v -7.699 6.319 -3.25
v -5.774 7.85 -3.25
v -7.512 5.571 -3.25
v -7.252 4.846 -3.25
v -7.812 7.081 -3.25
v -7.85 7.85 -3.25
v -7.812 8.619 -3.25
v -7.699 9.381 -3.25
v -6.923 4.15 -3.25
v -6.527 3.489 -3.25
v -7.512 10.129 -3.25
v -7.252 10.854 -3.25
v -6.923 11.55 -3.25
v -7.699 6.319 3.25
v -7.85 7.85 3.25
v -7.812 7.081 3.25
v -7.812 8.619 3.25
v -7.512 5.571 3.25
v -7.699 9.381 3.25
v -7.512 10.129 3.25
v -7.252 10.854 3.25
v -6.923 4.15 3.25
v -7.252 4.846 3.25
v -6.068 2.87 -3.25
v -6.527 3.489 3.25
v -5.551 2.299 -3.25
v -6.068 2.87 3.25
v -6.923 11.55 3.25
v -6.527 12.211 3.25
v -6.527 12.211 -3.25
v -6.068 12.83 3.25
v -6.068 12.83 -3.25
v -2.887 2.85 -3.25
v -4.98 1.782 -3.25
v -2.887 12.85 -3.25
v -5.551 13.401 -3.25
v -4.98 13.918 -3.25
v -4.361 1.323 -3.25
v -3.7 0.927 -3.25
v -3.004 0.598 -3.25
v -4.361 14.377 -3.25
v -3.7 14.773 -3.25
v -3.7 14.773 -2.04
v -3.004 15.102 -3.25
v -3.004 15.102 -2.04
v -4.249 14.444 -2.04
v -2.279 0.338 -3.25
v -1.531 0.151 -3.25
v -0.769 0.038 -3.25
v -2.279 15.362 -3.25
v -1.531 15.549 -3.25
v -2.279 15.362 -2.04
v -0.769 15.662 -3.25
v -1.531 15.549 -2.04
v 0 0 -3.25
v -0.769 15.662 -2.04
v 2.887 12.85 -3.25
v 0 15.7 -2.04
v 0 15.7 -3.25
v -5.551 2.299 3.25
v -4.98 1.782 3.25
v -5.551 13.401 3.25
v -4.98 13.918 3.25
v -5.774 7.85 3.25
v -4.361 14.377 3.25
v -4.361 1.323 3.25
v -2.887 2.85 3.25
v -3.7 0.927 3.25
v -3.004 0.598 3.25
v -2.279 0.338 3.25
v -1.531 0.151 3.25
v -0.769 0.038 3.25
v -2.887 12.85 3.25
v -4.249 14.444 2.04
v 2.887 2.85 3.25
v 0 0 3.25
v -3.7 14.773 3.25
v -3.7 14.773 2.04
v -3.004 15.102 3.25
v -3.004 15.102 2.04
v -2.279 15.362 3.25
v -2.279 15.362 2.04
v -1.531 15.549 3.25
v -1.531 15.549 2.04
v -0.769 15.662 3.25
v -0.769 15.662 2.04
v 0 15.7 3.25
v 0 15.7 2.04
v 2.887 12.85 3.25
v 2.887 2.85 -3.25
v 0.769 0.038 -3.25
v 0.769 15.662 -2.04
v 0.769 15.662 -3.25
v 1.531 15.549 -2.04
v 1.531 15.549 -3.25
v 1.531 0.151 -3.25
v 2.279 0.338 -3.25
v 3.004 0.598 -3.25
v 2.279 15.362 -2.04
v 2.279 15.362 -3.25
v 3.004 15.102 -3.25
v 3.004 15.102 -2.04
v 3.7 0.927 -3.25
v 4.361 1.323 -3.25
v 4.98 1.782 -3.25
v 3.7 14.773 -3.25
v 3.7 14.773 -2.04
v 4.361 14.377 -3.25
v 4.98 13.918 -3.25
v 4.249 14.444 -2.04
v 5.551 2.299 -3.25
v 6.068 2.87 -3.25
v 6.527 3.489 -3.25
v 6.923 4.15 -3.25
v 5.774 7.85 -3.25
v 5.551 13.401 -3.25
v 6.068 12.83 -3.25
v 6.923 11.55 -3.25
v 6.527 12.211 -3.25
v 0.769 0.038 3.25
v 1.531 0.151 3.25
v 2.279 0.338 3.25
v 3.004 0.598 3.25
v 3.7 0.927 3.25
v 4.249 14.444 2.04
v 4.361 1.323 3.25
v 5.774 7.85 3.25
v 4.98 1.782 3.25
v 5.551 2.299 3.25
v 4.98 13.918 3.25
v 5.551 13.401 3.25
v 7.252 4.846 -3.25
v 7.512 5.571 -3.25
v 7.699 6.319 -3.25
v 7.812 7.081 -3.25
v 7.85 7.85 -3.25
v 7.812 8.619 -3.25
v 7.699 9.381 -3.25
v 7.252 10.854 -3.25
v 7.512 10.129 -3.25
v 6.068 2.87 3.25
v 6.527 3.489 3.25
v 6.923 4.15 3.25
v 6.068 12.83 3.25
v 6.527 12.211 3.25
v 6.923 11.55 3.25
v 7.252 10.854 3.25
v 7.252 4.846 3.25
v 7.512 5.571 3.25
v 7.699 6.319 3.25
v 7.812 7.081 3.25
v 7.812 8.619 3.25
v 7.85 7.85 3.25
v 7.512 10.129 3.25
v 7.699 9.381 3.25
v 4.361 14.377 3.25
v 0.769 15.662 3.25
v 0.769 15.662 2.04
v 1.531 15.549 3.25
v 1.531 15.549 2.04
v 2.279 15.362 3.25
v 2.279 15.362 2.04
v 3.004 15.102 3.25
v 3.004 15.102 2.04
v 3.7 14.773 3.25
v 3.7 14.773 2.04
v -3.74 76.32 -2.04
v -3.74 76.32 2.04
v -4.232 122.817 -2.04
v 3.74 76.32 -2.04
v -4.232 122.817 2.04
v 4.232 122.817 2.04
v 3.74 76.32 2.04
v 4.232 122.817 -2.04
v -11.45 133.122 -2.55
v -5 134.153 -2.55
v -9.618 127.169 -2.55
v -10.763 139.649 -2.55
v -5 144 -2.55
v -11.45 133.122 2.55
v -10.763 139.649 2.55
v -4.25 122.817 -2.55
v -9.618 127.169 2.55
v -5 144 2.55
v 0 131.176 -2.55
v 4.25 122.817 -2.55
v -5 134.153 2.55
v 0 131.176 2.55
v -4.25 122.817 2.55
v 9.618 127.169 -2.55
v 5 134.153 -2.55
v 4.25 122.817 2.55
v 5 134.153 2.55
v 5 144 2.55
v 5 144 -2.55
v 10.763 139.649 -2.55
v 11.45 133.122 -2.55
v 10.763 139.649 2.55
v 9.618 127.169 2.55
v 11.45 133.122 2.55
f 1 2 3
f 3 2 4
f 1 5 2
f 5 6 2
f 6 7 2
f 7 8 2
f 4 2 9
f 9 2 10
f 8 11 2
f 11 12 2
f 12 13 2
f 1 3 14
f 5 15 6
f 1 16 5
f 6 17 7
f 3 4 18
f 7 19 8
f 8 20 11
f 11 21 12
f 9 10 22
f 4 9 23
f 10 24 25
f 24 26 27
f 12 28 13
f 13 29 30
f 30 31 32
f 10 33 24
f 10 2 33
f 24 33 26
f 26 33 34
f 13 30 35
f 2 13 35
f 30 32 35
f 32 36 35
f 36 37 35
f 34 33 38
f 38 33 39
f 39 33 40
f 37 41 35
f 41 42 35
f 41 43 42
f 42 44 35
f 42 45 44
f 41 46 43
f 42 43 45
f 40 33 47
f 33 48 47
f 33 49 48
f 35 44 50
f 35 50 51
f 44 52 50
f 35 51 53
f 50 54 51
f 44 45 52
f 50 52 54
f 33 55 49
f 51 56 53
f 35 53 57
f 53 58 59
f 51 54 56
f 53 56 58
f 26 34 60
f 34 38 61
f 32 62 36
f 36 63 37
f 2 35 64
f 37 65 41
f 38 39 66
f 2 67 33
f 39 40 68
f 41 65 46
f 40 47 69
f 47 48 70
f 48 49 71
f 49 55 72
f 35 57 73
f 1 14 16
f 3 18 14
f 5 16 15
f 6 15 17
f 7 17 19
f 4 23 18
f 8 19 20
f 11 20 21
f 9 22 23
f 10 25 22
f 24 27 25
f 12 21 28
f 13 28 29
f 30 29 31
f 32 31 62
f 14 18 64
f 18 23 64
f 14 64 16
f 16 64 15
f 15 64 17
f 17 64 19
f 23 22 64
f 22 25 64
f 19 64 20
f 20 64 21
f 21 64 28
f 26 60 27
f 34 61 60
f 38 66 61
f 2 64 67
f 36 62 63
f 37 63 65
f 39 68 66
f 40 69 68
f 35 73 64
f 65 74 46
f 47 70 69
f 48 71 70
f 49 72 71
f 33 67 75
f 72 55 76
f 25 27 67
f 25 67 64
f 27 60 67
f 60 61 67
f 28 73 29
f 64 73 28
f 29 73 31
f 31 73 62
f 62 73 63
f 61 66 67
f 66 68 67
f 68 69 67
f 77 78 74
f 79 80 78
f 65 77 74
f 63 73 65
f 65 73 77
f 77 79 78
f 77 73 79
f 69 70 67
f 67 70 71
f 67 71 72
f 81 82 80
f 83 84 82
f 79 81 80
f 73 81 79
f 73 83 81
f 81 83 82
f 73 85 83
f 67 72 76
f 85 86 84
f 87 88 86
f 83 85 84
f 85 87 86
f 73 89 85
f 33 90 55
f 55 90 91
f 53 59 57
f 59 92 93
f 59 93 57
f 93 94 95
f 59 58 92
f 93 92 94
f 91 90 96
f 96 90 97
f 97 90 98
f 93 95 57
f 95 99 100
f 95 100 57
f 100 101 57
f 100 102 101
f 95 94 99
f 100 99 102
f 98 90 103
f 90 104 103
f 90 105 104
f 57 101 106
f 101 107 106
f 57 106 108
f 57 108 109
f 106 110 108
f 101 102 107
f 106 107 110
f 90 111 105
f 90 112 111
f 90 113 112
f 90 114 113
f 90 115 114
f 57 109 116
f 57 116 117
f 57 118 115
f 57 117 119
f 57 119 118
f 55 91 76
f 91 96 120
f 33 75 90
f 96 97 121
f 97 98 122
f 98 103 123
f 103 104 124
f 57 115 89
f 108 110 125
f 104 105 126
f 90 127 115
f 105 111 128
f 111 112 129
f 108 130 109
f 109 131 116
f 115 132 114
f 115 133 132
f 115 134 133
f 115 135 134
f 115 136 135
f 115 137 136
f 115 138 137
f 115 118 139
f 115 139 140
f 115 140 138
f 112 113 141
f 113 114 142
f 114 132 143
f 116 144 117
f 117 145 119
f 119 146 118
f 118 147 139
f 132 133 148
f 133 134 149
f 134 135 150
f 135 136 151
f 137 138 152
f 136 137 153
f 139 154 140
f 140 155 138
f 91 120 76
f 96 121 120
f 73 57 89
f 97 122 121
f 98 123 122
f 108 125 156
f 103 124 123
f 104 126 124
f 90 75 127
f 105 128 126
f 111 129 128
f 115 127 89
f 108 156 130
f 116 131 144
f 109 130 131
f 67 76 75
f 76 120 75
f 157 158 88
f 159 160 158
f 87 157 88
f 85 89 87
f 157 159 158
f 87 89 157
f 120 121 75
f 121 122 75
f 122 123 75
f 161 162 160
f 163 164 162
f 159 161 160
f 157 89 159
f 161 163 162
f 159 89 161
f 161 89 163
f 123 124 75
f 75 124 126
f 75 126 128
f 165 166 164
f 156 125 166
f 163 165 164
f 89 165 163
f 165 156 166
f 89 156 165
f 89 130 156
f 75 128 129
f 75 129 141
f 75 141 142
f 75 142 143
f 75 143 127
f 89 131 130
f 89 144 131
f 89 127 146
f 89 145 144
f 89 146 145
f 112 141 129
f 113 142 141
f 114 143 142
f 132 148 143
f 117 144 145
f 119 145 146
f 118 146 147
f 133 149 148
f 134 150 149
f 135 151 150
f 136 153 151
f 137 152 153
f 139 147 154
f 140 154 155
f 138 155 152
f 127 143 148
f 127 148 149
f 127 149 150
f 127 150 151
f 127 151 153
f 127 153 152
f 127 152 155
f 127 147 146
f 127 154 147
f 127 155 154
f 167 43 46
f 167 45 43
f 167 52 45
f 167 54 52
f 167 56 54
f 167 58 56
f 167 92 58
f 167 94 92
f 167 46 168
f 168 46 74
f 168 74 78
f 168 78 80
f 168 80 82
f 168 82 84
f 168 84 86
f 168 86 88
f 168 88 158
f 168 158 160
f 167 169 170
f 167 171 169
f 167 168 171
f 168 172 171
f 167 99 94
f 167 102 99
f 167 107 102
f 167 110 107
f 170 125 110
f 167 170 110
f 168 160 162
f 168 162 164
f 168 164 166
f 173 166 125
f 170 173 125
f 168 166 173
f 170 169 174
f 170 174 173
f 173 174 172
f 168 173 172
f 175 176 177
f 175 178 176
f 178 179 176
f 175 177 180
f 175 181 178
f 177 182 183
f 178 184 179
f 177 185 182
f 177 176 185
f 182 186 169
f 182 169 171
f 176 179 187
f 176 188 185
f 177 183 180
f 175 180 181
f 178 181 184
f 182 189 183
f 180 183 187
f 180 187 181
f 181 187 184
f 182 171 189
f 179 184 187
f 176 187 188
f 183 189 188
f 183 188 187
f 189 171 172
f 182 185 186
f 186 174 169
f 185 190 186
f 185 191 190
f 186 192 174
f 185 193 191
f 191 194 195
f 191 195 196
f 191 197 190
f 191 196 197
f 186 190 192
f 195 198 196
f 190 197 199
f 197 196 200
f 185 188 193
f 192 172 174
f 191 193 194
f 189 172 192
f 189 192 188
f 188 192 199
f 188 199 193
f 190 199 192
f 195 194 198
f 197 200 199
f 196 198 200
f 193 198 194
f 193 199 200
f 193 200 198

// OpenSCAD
// M10 spanner
// Generic 10 mm combination spanner using the Bahco 111M-10 as a dimensional reference. Length and head widths and thicknesses follow the catalogue. The straight shank, jaw outline and six-point ring are simplified. The workshop specimen has not been measured.
// Units: mm
$fn = 64;
union() {
    // Ring end
    color([0.7176, 0.7216, 0.7059])
    translate([0, 0, -3.25]) rotate([0, 0, 0])
        linear_extrude(height=6.5) polygon(points=[[7.85, 7.85], [7.812200104376745, 8.619434551587052], [7.699164451165359, 9.381459027826606], [7.511981635497839, 10.128734716447529], [7.252454330213601, 10.854064944065955], [6.9230819251345865, 11.550464384084082], [6.527036456574979, 12.211226329203877], [6.068132058897485, 12.829987280684616], [5.550788232314398, 13.400788232314397], [4.979987280684617, 13.918132058897484], [4.361226329203878, 14.37703645657498], [3.7004643840840825, 14.773081925134585], [3.0040649440659553, 15.1024543302136], [2.2787347164475293, 15.361981635497841], [1.5314590278266074, 15.549164451165359], [0.769434551587052, 15.662200104376744], [4.806738686653361e-16, 15.7], [-0.769434551587051, 15.662200104376746], [-1.5314590278266063, 15.549164451165359], [-2.278734716447528, 15.361981635497841], [-3.0040649440659544, 15.1024543302136], [-3.7004643840840816, 14.773081925134585], [-4.361226329203875, 14.37703645657498], [-4.979987280684616, 13.918132058897486], [-5.550788232314397, 13.400788232314397], [-6.068132058897485, 12.829987280684616], [-6.52703645657498, 12.211226329203877], [-6.923081925134586, 11.550464384084083], [-7.252454330213601, 10.854064944065955], [-7.511981635497839, 10.12873471644753], [-7.699164451165359, 9.38145902782661], [-7.812200104376744, 8.619434551587053], [-7.85, 7.850000000000001], [-7.812200104376745, 7.080565448412949], [-7.699164451165359, 6.318540972173392], [-7.51198163549784, 5.5712652835524725], [-7.2524543302136015, 4.845935055934047], [-6.9230819251345865, 4.149535615915918], [-6.527036456574981, 3.4887736707961245], [-6.068132058897486, 2.8700127193153846], [-5.550788232314399, 2.2992117676856023], [-4.97998728068462, 1.7818679411025171], [-4.361226329203877, 1.3229635434250198], [-3.700464384084083, 0.9269180748654137], [-3.004064944065959, 0.5975456697864008], [-2.2787347164475302, 0.3380183645021607], [-1.53145902782661, 0.15083554883464198], [-0.7694345515870495, 0.03779989562325411], [-1.4420216059960083e-15, 0.0], [0.7694345515870467, 0.03779989562325411], [1.5314590278266071, 0.15083554883464112], [2.278734716447527, 0.33801836450215983], [3.0040649440659566, 0.5975456697864], [3.7004643840840807, 0.9269180748654128], [4.361226329203874, 1.3229635434250182], [4.979987280684618, 1.7818679411025153], [5.550788232314397, 2.2992117676856005], [6.068132058897482, 2.8700127193153793], [6.527036456574979, 3.4887736707961228], [6.923081925134585, 4.149535615915916], [7.252454330213599, 4.84593505593404], [7.511981635497839, 5.571265283552469], [7.699164451165358, 6.318540972173389], [7.812200104376745, 7.080565448412949], [5.773502691896258, 7.85], [2.8867513459481295, 2.8499999999999996], [-2.8867513459481278, 2.8499999999999988], [-5.773502691896258, 7.849999999999999], [-2.8867513459481318, 12.849999999999998], [2.8867513459481295, 12.85]], paths=[[0, 1, 2, 3, 4, 5, 6, 7, 8, 9, 10, 11, 12, 13, 14, 15, 16, 17, 18, 19, 20, 21, 22, 23, 24, 25, 26, 27, 28, 29, 30, 31, 32, 33, 34, 35, 36, 37, 38, 39, 40, 41, 42, 43, 44, 45, 46, 47, 48, 49, 50, 51, 52, 53, 54, 55, 56, 57, 58, 59, 60, 61, 62, 63], [64, 65, 66, 67, 68, 69]]);
    // Shank
    color([0.5882, 0.5922, 0.5765])
    translate([0, 0, -2.04]) rotate([0, 0, 0])
        linear_extrude(height=4.08) polygon(points=[[-4.25, 14.286999999999999], [4.25, 14.286999999999999], [3.74, 76.32000000000001], [4.25, 124.535], [-4.25, 124.535], [-3.74, 76.32000000000001]]);
    // Open jaw
    color([0.7176, 0.7216, 0.7059])
    translate([0, 144, -2.55]) rotate([0, 0, 0])
        linear_extrude(height=5.1) polygon(points=[[-4.25, -21.1825], [4.25, -21.1825], [9.617999999999999, -16.8315], [11.45, -10.8775], [10.762999999999998, -4.351], [5.0, 0], [5.0, -9.847], [0, -12.824], [-5.0, -9.847], [-5.0, 0], [-10.762999999999998, -4.351], [-11.45, -10.8775], [-9.617999999999999, -16.8315]]);
}
